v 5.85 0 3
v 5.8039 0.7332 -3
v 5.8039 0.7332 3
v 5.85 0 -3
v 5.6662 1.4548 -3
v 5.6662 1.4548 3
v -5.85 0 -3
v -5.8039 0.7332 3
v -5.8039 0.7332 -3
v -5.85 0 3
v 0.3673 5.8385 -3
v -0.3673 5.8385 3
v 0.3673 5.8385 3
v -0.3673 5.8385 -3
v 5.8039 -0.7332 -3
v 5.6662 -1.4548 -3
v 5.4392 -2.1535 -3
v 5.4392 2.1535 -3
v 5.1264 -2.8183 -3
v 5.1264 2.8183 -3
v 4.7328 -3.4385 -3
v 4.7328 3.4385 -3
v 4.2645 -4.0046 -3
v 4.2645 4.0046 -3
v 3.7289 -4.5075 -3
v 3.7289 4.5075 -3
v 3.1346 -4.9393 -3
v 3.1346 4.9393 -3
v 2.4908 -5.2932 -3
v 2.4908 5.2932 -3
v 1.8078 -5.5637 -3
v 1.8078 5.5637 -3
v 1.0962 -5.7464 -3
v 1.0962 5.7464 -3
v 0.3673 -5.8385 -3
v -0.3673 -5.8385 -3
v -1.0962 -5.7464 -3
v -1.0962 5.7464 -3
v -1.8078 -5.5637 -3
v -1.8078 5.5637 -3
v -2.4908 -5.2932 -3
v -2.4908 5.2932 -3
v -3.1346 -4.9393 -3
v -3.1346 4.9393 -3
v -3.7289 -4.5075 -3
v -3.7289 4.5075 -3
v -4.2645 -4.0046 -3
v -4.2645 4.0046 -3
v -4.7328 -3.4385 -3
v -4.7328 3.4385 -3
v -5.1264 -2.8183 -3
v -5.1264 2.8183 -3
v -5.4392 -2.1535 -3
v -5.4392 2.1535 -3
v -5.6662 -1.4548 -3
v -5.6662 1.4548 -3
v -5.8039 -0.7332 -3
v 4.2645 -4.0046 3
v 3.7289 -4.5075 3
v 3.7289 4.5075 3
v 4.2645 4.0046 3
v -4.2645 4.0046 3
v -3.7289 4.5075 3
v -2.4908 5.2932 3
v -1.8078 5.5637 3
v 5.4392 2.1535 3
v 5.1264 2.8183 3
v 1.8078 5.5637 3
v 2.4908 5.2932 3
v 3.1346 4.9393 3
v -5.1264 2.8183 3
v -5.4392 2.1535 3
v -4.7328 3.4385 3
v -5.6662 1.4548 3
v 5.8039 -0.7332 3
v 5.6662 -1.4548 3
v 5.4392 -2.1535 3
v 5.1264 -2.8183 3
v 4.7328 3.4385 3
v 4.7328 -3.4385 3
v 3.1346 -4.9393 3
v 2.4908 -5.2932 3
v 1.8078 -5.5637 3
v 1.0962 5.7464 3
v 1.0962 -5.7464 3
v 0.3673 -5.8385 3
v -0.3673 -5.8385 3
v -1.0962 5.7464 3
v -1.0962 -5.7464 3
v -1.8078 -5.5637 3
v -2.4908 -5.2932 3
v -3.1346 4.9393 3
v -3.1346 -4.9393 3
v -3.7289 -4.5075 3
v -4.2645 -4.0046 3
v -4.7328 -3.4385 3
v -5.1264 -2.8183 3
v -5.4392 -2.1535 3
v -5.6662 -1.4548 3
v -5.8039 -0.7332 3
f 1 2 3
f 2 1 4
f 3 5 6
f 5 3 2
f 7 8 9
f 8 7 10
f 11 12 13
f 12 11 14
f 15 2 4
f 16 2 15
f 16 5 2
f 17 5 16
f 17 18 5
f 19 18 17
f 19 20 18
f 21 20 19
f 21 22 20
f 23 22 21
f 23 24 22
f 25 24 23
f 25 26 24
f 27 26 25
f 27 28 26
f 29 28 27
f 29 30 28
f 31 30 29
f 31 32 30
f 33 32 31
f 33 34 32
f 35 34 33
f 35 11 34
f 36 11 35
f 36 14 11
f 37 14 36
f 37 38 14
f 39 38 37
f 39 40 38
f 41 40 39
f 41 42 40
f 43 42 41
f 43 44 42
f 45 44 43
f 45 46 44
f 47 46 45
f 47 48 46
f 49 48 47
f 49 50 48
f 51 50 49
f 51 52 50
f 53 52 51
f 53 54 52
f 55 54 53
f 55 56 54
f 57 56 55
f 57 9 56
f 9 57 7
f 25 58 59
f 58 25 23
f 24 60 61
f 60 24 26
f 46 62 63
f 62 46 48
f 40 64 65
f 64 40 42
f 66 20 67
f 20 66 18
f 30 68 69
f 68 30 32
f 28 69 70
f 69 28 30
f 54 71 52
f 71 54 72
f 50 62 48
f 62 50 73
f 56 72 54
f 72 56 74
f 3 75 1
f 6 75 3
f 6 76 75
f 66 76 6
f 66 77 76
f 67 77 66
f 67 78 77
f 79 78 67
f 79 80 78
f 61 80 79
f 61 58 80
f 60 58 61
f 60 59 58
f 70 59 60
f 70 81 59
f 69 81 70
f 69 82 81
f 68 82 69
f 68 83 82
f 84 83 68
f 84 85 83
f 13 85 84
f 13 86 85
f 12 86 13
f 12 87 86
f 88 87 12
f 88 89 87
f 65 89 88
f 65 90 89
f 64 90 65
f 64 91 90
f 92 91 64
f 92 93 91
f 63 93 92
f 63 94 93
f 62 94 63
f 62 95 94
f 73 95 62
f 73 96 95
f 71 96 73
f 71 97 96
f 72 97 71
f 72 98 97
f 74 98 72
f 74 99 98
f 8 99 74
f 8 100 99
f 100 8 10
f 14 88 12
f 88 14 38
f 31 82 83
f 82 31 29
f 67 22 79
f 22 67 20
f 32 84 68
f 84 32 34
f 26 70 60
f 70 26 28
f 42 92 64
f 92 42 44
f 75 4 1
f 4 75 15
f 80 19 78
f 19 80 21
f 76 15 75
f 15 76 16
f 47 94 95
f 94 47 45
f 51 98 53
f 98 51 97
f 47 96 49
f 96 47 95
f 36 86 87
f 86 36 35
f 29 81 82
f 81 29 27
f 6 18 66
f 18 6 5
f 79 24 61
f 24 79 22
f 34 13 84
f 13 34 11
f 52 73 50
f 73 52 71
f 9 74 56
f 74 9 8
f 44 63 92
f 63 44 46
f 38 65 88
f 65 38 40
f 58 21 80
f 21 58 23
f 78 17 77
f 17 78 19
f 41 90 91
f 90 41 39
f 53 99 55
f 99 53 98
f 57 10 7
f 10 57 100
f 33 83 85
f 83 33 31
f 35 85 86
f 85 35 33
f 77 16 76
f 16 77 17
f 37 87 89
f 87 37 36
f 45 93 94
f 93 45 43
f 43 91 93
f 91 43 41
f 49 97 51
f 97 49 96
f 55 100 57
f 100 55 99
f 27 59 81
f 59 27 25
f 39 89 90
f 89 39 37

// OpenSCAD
$fn = 50;


difference() {
	union() {
		translate(v = [0, 0, -3.0000000000]) {
			cylinder(h = 6, r = 5.8500000000);
		}
	}
	union() {
		translate(v = [0, 0, -100.0000000000]) {
			cylinder(h = 200, r = 0);
		}
	}
}
